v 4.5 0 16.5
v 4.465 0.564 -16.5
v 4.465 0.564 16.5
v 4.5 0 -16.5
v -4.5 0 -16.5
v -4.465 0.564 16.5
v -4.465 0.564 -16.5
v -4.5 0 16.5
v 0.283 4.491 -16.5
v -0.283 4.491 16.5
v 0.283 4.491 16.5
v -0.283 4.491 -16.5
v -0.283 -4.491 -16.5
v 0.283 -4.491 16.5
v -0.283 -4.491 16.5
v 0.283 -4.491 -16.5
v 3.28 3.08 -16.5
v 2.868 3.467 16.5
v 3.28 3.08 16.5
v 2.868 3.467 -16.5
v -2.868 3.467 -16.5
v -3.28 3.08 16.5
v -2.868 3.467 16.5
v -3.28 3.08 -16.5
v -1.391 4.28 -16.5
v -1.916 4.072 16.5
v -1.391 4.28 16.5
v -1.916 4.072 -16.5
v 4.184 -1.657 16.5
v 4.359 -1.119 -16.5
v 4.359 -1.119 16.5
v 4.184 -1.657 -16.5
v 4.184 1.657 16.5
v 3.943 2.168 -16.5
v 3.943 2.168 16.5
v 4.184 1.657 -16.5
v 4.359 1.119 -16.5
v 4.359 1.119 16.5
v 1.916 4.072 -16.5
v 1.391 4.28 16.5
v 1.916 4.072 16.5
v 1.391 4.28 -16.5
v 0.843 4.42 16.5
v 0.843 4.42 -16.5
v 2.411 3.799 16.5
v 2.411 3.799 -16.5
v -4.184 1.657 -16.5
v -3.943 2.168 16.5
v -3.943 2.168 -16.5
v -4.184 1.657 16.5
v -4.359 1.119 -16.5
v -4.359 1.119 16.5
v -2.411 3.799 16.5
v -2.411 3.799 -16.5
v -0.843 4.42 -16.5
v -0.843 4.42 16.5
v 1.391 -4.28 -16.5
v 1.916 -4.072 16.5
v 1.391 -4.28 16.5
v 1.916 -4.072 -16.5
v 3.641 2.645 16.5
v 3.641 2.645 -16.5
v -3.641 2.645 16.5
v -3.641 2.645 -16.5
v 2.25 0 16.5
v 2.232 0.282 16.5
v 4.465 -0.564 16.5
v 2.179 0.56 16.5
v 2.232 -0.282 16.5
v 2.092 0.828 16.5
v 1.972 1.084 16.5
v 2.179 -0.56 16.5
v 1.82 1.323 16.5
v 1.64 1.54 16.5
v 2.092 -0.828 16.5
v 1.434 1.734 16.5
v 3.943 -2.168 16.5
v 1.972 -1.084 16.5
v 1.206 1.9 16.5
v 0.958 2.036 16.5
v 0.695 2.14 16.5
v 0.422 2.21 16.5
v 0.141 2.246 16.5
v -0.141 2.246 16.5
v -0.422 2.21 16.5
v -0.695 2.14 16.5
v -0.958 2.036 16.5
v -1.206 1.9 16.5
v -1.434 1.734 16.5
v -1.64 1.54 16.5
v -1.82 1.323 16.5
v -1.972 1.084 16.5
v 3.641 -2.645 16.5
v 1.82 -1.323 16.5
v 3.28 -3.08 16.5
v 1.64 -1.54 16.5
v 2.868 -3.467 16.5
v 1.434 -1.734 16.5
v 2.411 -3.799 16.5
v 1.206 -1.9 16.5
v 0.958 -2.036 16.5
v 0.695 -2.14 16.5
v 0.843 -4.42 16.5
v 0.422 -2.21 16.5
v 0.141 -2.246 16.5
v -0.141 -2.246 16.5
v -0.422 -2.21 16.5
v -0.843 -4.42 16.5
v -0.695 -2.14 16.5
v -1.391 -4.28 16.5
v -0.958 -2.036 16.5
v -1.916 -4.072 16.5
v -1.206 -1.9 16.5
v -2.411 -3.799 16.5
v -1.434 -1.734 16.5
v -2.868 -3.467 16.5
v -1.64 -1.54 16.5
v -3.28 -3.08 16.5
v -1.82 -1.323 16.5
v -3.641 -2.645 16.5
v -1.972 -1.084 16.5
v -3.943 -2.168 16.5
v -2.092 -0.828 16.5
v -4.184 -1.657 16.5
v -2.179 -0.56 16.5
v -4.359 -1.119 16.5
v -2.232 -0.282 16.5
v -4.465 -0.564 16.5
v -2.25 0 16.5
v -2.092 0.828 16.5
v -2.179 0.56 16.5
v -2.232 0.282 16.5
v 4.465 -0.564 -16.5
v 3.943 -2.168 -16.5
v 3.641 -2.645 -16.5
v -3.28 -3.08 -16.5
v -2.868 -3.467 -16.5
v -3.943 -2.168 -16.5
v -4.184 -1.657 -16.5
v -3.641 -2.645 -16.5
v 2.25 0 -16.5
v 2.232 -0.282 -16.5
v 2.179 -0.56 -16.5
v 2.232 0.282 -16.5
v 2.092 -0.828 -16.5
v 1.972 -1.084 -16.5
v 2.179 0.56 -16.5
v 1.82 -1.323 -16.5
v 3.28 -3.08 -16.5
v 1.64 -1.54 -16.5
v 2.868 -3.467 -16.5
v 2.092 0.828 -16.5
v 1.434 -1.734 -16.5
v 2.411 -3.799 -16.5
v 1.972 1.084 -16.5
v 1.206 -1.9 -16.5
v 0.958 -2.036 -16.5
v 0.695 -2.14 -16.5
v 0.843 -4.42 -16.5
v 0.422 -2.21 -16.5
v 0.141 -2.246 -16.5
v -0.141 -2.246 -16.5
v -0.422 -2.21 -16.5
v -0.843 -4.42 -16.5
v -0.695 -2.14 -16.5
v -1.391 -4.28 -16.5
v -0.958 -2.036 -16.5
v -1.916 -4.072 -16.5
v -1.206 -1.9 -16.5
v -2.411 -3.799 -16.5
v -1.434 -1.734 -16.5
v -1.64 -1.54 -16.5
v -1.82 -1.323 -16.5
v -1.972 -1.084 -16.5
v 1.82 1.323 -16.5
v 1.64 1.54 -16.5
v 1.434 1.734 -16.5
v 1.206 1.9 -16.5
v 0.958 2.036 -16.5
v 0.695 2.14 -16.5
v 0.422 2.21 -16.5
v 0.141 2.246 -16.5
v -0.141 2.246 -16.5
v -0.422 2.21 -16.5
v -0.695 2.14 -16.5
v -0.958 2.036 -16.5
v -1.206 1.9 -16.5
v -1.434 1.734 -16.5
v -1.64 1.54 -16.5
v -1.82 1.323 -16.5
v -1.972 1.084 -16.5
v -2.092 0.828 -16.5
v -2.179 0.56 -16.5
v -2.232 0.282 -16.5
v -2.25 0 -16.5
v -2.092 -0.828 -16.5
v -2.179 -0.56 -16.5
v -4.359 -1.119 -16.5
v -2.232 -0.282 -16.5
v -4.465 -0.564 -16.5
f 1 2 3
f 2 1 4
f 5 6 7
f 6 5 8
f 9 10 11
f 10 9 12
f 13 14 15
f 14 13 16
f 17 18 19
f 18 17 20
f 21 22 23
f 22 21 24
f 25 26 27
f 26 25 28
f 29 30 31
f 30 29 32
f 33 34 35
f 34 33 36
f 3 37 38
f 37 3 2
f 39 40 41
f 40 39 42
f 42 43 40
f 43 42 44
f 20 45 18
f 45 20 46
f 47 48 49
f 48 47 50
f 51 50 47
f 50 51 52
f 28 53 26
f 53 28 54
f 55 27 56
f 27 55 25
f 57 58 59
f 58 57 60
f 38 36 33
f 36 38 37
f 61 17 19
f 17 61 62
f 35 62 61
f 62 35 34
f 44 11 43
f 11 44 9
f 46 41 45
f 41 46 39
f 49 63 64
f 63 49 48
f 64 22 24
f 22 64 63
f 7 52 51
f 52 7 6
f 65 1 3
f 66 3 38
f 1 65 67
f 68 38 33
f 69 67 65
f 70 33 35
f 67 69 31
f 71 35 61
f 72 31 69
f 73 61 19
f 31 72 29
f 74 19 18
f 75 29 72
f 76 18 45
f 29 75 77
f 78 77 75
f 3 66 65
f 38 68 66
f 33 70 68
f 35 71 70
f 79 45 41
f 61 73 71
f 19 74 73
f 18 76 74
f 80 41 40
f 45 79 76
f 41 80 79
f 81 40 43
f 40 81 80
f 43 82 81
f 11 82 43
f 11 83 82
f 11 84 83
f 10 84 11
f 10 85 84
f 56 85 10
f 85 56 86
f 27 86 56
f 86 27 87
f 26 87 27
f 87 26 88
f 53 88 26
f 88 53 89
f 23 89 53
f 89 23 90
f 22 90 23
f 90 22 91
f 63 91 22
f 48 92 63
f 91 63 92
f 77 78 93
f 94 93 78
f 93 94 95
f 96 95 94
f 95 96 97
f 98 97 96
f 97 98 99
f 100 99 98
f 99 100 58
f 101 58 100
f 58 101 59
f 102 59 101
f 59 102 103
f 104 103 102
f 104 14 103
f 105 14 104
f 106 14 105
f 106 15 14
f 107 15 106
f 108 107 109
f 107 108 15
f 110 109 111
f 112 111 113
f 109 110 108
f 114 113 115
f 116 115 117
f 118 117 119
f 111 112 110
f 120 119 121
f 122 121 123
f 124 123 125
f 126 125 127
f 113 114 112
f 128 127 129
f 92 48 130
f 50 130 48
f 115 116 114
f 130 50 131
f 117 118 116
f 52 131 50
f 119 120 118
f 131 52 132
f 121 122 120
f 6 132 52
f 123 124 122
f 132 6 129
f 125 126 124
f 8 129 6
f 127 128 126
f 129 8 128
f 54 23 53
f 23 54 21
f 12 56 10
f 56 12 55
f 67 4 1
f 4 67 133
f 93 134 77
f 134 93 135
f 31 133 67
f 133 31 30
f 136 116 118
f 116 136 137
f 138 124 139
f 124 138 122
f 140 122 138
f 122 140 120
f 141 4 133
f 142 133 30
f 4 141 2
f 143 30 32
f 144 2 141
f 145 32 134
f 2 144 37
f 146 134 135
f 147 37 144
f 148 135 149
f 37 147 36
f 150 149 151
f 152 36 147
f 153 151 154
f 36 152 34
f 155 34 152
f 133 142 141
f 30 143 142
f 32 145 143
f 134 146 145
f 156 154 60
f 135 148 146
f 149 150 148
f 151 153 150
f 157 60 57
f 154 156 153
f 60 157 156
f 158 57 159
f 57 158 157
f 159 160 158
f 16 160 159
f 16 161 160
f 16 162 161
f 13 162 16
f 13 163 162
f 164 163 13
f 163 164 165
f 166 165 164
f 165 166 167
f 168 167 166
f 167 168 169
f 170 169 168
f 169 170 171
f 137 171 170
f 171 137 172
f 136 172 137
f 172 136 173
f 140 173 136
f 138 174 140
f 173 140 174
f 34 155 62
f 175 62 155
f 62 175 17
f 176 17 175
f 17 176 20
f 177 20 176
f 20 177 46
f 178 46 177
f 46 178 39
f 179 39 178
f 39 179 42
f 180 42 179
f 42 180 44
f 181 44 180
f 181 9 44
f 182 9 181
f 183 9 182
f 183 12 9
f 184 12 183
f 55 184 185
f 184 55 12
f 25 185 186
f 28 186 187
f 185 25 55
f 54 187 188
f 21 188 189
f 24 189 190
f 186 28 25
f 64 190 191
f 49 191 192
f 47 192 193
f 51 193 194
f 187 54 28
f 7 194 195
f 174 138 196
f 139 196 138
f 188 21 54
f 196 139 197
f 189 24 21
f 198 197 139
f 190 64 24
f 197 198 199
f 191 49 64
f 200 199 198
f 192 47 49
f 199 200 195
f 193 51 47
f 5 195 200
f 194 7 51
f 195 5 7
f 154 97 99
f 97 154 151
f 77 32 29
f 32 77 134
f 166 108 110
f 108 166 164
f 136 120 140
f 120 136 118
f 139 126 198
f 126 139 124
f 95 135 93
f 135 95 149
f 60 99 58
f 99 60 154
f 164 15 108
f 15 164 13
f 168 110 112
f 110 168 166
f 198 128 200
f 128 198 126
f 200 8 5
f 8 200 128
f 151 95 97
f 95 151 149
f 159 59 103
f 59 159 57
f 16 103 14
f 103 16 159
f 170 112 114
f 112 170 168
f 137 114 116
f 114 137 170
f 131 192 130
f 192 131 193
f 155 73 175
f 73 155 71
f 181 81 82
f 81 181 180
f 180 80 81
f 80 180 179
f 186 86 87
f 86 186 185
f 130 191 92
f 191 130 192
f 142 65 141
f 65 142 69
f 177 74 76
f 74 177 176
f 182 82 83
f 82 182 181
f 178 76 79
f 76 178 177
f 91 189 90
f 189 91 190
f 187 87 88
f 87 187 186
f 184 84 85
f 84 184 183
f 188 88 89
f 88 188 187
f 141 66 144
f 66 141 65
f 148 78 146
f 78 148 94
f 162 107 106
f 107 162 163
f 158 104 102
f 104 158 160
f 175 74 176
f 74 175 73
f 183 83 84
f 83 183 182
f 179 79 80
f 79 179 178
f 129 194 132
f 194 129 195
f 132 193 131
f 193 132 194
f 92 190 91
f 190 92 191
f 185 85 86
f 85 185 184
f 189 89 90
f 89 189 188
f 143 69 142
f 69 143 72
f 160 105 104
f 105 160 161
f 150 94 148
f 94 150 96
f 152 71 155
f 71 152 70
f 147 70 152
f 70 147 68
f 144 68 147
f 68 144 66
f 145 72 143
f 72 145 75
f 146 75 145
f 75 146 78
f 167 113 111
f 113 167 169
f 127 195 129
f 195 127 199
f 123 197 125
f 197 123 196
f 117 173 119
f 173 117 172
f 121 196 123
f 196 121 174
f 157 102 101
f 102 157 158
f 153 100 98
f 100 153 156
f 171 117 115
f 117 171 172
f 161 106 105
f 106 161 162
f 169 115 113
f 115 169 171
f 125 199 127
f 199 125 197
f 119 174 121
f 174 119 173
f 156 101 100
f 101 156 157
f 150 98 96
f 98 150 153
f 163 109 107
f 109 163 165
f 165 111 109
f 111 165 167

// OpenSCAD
$fn = 50;


difference() {
	union() {
		translate(v = [0, 0, -16.5000000000]) {
			cylinder(h = 33, r = 4.5000000000);
		}
	}
	union() {
		translate(v = [0, 0, -100.0000000000]) {
			cylinder(h = 200, r = 2.2500000000);
		}
	}
}
